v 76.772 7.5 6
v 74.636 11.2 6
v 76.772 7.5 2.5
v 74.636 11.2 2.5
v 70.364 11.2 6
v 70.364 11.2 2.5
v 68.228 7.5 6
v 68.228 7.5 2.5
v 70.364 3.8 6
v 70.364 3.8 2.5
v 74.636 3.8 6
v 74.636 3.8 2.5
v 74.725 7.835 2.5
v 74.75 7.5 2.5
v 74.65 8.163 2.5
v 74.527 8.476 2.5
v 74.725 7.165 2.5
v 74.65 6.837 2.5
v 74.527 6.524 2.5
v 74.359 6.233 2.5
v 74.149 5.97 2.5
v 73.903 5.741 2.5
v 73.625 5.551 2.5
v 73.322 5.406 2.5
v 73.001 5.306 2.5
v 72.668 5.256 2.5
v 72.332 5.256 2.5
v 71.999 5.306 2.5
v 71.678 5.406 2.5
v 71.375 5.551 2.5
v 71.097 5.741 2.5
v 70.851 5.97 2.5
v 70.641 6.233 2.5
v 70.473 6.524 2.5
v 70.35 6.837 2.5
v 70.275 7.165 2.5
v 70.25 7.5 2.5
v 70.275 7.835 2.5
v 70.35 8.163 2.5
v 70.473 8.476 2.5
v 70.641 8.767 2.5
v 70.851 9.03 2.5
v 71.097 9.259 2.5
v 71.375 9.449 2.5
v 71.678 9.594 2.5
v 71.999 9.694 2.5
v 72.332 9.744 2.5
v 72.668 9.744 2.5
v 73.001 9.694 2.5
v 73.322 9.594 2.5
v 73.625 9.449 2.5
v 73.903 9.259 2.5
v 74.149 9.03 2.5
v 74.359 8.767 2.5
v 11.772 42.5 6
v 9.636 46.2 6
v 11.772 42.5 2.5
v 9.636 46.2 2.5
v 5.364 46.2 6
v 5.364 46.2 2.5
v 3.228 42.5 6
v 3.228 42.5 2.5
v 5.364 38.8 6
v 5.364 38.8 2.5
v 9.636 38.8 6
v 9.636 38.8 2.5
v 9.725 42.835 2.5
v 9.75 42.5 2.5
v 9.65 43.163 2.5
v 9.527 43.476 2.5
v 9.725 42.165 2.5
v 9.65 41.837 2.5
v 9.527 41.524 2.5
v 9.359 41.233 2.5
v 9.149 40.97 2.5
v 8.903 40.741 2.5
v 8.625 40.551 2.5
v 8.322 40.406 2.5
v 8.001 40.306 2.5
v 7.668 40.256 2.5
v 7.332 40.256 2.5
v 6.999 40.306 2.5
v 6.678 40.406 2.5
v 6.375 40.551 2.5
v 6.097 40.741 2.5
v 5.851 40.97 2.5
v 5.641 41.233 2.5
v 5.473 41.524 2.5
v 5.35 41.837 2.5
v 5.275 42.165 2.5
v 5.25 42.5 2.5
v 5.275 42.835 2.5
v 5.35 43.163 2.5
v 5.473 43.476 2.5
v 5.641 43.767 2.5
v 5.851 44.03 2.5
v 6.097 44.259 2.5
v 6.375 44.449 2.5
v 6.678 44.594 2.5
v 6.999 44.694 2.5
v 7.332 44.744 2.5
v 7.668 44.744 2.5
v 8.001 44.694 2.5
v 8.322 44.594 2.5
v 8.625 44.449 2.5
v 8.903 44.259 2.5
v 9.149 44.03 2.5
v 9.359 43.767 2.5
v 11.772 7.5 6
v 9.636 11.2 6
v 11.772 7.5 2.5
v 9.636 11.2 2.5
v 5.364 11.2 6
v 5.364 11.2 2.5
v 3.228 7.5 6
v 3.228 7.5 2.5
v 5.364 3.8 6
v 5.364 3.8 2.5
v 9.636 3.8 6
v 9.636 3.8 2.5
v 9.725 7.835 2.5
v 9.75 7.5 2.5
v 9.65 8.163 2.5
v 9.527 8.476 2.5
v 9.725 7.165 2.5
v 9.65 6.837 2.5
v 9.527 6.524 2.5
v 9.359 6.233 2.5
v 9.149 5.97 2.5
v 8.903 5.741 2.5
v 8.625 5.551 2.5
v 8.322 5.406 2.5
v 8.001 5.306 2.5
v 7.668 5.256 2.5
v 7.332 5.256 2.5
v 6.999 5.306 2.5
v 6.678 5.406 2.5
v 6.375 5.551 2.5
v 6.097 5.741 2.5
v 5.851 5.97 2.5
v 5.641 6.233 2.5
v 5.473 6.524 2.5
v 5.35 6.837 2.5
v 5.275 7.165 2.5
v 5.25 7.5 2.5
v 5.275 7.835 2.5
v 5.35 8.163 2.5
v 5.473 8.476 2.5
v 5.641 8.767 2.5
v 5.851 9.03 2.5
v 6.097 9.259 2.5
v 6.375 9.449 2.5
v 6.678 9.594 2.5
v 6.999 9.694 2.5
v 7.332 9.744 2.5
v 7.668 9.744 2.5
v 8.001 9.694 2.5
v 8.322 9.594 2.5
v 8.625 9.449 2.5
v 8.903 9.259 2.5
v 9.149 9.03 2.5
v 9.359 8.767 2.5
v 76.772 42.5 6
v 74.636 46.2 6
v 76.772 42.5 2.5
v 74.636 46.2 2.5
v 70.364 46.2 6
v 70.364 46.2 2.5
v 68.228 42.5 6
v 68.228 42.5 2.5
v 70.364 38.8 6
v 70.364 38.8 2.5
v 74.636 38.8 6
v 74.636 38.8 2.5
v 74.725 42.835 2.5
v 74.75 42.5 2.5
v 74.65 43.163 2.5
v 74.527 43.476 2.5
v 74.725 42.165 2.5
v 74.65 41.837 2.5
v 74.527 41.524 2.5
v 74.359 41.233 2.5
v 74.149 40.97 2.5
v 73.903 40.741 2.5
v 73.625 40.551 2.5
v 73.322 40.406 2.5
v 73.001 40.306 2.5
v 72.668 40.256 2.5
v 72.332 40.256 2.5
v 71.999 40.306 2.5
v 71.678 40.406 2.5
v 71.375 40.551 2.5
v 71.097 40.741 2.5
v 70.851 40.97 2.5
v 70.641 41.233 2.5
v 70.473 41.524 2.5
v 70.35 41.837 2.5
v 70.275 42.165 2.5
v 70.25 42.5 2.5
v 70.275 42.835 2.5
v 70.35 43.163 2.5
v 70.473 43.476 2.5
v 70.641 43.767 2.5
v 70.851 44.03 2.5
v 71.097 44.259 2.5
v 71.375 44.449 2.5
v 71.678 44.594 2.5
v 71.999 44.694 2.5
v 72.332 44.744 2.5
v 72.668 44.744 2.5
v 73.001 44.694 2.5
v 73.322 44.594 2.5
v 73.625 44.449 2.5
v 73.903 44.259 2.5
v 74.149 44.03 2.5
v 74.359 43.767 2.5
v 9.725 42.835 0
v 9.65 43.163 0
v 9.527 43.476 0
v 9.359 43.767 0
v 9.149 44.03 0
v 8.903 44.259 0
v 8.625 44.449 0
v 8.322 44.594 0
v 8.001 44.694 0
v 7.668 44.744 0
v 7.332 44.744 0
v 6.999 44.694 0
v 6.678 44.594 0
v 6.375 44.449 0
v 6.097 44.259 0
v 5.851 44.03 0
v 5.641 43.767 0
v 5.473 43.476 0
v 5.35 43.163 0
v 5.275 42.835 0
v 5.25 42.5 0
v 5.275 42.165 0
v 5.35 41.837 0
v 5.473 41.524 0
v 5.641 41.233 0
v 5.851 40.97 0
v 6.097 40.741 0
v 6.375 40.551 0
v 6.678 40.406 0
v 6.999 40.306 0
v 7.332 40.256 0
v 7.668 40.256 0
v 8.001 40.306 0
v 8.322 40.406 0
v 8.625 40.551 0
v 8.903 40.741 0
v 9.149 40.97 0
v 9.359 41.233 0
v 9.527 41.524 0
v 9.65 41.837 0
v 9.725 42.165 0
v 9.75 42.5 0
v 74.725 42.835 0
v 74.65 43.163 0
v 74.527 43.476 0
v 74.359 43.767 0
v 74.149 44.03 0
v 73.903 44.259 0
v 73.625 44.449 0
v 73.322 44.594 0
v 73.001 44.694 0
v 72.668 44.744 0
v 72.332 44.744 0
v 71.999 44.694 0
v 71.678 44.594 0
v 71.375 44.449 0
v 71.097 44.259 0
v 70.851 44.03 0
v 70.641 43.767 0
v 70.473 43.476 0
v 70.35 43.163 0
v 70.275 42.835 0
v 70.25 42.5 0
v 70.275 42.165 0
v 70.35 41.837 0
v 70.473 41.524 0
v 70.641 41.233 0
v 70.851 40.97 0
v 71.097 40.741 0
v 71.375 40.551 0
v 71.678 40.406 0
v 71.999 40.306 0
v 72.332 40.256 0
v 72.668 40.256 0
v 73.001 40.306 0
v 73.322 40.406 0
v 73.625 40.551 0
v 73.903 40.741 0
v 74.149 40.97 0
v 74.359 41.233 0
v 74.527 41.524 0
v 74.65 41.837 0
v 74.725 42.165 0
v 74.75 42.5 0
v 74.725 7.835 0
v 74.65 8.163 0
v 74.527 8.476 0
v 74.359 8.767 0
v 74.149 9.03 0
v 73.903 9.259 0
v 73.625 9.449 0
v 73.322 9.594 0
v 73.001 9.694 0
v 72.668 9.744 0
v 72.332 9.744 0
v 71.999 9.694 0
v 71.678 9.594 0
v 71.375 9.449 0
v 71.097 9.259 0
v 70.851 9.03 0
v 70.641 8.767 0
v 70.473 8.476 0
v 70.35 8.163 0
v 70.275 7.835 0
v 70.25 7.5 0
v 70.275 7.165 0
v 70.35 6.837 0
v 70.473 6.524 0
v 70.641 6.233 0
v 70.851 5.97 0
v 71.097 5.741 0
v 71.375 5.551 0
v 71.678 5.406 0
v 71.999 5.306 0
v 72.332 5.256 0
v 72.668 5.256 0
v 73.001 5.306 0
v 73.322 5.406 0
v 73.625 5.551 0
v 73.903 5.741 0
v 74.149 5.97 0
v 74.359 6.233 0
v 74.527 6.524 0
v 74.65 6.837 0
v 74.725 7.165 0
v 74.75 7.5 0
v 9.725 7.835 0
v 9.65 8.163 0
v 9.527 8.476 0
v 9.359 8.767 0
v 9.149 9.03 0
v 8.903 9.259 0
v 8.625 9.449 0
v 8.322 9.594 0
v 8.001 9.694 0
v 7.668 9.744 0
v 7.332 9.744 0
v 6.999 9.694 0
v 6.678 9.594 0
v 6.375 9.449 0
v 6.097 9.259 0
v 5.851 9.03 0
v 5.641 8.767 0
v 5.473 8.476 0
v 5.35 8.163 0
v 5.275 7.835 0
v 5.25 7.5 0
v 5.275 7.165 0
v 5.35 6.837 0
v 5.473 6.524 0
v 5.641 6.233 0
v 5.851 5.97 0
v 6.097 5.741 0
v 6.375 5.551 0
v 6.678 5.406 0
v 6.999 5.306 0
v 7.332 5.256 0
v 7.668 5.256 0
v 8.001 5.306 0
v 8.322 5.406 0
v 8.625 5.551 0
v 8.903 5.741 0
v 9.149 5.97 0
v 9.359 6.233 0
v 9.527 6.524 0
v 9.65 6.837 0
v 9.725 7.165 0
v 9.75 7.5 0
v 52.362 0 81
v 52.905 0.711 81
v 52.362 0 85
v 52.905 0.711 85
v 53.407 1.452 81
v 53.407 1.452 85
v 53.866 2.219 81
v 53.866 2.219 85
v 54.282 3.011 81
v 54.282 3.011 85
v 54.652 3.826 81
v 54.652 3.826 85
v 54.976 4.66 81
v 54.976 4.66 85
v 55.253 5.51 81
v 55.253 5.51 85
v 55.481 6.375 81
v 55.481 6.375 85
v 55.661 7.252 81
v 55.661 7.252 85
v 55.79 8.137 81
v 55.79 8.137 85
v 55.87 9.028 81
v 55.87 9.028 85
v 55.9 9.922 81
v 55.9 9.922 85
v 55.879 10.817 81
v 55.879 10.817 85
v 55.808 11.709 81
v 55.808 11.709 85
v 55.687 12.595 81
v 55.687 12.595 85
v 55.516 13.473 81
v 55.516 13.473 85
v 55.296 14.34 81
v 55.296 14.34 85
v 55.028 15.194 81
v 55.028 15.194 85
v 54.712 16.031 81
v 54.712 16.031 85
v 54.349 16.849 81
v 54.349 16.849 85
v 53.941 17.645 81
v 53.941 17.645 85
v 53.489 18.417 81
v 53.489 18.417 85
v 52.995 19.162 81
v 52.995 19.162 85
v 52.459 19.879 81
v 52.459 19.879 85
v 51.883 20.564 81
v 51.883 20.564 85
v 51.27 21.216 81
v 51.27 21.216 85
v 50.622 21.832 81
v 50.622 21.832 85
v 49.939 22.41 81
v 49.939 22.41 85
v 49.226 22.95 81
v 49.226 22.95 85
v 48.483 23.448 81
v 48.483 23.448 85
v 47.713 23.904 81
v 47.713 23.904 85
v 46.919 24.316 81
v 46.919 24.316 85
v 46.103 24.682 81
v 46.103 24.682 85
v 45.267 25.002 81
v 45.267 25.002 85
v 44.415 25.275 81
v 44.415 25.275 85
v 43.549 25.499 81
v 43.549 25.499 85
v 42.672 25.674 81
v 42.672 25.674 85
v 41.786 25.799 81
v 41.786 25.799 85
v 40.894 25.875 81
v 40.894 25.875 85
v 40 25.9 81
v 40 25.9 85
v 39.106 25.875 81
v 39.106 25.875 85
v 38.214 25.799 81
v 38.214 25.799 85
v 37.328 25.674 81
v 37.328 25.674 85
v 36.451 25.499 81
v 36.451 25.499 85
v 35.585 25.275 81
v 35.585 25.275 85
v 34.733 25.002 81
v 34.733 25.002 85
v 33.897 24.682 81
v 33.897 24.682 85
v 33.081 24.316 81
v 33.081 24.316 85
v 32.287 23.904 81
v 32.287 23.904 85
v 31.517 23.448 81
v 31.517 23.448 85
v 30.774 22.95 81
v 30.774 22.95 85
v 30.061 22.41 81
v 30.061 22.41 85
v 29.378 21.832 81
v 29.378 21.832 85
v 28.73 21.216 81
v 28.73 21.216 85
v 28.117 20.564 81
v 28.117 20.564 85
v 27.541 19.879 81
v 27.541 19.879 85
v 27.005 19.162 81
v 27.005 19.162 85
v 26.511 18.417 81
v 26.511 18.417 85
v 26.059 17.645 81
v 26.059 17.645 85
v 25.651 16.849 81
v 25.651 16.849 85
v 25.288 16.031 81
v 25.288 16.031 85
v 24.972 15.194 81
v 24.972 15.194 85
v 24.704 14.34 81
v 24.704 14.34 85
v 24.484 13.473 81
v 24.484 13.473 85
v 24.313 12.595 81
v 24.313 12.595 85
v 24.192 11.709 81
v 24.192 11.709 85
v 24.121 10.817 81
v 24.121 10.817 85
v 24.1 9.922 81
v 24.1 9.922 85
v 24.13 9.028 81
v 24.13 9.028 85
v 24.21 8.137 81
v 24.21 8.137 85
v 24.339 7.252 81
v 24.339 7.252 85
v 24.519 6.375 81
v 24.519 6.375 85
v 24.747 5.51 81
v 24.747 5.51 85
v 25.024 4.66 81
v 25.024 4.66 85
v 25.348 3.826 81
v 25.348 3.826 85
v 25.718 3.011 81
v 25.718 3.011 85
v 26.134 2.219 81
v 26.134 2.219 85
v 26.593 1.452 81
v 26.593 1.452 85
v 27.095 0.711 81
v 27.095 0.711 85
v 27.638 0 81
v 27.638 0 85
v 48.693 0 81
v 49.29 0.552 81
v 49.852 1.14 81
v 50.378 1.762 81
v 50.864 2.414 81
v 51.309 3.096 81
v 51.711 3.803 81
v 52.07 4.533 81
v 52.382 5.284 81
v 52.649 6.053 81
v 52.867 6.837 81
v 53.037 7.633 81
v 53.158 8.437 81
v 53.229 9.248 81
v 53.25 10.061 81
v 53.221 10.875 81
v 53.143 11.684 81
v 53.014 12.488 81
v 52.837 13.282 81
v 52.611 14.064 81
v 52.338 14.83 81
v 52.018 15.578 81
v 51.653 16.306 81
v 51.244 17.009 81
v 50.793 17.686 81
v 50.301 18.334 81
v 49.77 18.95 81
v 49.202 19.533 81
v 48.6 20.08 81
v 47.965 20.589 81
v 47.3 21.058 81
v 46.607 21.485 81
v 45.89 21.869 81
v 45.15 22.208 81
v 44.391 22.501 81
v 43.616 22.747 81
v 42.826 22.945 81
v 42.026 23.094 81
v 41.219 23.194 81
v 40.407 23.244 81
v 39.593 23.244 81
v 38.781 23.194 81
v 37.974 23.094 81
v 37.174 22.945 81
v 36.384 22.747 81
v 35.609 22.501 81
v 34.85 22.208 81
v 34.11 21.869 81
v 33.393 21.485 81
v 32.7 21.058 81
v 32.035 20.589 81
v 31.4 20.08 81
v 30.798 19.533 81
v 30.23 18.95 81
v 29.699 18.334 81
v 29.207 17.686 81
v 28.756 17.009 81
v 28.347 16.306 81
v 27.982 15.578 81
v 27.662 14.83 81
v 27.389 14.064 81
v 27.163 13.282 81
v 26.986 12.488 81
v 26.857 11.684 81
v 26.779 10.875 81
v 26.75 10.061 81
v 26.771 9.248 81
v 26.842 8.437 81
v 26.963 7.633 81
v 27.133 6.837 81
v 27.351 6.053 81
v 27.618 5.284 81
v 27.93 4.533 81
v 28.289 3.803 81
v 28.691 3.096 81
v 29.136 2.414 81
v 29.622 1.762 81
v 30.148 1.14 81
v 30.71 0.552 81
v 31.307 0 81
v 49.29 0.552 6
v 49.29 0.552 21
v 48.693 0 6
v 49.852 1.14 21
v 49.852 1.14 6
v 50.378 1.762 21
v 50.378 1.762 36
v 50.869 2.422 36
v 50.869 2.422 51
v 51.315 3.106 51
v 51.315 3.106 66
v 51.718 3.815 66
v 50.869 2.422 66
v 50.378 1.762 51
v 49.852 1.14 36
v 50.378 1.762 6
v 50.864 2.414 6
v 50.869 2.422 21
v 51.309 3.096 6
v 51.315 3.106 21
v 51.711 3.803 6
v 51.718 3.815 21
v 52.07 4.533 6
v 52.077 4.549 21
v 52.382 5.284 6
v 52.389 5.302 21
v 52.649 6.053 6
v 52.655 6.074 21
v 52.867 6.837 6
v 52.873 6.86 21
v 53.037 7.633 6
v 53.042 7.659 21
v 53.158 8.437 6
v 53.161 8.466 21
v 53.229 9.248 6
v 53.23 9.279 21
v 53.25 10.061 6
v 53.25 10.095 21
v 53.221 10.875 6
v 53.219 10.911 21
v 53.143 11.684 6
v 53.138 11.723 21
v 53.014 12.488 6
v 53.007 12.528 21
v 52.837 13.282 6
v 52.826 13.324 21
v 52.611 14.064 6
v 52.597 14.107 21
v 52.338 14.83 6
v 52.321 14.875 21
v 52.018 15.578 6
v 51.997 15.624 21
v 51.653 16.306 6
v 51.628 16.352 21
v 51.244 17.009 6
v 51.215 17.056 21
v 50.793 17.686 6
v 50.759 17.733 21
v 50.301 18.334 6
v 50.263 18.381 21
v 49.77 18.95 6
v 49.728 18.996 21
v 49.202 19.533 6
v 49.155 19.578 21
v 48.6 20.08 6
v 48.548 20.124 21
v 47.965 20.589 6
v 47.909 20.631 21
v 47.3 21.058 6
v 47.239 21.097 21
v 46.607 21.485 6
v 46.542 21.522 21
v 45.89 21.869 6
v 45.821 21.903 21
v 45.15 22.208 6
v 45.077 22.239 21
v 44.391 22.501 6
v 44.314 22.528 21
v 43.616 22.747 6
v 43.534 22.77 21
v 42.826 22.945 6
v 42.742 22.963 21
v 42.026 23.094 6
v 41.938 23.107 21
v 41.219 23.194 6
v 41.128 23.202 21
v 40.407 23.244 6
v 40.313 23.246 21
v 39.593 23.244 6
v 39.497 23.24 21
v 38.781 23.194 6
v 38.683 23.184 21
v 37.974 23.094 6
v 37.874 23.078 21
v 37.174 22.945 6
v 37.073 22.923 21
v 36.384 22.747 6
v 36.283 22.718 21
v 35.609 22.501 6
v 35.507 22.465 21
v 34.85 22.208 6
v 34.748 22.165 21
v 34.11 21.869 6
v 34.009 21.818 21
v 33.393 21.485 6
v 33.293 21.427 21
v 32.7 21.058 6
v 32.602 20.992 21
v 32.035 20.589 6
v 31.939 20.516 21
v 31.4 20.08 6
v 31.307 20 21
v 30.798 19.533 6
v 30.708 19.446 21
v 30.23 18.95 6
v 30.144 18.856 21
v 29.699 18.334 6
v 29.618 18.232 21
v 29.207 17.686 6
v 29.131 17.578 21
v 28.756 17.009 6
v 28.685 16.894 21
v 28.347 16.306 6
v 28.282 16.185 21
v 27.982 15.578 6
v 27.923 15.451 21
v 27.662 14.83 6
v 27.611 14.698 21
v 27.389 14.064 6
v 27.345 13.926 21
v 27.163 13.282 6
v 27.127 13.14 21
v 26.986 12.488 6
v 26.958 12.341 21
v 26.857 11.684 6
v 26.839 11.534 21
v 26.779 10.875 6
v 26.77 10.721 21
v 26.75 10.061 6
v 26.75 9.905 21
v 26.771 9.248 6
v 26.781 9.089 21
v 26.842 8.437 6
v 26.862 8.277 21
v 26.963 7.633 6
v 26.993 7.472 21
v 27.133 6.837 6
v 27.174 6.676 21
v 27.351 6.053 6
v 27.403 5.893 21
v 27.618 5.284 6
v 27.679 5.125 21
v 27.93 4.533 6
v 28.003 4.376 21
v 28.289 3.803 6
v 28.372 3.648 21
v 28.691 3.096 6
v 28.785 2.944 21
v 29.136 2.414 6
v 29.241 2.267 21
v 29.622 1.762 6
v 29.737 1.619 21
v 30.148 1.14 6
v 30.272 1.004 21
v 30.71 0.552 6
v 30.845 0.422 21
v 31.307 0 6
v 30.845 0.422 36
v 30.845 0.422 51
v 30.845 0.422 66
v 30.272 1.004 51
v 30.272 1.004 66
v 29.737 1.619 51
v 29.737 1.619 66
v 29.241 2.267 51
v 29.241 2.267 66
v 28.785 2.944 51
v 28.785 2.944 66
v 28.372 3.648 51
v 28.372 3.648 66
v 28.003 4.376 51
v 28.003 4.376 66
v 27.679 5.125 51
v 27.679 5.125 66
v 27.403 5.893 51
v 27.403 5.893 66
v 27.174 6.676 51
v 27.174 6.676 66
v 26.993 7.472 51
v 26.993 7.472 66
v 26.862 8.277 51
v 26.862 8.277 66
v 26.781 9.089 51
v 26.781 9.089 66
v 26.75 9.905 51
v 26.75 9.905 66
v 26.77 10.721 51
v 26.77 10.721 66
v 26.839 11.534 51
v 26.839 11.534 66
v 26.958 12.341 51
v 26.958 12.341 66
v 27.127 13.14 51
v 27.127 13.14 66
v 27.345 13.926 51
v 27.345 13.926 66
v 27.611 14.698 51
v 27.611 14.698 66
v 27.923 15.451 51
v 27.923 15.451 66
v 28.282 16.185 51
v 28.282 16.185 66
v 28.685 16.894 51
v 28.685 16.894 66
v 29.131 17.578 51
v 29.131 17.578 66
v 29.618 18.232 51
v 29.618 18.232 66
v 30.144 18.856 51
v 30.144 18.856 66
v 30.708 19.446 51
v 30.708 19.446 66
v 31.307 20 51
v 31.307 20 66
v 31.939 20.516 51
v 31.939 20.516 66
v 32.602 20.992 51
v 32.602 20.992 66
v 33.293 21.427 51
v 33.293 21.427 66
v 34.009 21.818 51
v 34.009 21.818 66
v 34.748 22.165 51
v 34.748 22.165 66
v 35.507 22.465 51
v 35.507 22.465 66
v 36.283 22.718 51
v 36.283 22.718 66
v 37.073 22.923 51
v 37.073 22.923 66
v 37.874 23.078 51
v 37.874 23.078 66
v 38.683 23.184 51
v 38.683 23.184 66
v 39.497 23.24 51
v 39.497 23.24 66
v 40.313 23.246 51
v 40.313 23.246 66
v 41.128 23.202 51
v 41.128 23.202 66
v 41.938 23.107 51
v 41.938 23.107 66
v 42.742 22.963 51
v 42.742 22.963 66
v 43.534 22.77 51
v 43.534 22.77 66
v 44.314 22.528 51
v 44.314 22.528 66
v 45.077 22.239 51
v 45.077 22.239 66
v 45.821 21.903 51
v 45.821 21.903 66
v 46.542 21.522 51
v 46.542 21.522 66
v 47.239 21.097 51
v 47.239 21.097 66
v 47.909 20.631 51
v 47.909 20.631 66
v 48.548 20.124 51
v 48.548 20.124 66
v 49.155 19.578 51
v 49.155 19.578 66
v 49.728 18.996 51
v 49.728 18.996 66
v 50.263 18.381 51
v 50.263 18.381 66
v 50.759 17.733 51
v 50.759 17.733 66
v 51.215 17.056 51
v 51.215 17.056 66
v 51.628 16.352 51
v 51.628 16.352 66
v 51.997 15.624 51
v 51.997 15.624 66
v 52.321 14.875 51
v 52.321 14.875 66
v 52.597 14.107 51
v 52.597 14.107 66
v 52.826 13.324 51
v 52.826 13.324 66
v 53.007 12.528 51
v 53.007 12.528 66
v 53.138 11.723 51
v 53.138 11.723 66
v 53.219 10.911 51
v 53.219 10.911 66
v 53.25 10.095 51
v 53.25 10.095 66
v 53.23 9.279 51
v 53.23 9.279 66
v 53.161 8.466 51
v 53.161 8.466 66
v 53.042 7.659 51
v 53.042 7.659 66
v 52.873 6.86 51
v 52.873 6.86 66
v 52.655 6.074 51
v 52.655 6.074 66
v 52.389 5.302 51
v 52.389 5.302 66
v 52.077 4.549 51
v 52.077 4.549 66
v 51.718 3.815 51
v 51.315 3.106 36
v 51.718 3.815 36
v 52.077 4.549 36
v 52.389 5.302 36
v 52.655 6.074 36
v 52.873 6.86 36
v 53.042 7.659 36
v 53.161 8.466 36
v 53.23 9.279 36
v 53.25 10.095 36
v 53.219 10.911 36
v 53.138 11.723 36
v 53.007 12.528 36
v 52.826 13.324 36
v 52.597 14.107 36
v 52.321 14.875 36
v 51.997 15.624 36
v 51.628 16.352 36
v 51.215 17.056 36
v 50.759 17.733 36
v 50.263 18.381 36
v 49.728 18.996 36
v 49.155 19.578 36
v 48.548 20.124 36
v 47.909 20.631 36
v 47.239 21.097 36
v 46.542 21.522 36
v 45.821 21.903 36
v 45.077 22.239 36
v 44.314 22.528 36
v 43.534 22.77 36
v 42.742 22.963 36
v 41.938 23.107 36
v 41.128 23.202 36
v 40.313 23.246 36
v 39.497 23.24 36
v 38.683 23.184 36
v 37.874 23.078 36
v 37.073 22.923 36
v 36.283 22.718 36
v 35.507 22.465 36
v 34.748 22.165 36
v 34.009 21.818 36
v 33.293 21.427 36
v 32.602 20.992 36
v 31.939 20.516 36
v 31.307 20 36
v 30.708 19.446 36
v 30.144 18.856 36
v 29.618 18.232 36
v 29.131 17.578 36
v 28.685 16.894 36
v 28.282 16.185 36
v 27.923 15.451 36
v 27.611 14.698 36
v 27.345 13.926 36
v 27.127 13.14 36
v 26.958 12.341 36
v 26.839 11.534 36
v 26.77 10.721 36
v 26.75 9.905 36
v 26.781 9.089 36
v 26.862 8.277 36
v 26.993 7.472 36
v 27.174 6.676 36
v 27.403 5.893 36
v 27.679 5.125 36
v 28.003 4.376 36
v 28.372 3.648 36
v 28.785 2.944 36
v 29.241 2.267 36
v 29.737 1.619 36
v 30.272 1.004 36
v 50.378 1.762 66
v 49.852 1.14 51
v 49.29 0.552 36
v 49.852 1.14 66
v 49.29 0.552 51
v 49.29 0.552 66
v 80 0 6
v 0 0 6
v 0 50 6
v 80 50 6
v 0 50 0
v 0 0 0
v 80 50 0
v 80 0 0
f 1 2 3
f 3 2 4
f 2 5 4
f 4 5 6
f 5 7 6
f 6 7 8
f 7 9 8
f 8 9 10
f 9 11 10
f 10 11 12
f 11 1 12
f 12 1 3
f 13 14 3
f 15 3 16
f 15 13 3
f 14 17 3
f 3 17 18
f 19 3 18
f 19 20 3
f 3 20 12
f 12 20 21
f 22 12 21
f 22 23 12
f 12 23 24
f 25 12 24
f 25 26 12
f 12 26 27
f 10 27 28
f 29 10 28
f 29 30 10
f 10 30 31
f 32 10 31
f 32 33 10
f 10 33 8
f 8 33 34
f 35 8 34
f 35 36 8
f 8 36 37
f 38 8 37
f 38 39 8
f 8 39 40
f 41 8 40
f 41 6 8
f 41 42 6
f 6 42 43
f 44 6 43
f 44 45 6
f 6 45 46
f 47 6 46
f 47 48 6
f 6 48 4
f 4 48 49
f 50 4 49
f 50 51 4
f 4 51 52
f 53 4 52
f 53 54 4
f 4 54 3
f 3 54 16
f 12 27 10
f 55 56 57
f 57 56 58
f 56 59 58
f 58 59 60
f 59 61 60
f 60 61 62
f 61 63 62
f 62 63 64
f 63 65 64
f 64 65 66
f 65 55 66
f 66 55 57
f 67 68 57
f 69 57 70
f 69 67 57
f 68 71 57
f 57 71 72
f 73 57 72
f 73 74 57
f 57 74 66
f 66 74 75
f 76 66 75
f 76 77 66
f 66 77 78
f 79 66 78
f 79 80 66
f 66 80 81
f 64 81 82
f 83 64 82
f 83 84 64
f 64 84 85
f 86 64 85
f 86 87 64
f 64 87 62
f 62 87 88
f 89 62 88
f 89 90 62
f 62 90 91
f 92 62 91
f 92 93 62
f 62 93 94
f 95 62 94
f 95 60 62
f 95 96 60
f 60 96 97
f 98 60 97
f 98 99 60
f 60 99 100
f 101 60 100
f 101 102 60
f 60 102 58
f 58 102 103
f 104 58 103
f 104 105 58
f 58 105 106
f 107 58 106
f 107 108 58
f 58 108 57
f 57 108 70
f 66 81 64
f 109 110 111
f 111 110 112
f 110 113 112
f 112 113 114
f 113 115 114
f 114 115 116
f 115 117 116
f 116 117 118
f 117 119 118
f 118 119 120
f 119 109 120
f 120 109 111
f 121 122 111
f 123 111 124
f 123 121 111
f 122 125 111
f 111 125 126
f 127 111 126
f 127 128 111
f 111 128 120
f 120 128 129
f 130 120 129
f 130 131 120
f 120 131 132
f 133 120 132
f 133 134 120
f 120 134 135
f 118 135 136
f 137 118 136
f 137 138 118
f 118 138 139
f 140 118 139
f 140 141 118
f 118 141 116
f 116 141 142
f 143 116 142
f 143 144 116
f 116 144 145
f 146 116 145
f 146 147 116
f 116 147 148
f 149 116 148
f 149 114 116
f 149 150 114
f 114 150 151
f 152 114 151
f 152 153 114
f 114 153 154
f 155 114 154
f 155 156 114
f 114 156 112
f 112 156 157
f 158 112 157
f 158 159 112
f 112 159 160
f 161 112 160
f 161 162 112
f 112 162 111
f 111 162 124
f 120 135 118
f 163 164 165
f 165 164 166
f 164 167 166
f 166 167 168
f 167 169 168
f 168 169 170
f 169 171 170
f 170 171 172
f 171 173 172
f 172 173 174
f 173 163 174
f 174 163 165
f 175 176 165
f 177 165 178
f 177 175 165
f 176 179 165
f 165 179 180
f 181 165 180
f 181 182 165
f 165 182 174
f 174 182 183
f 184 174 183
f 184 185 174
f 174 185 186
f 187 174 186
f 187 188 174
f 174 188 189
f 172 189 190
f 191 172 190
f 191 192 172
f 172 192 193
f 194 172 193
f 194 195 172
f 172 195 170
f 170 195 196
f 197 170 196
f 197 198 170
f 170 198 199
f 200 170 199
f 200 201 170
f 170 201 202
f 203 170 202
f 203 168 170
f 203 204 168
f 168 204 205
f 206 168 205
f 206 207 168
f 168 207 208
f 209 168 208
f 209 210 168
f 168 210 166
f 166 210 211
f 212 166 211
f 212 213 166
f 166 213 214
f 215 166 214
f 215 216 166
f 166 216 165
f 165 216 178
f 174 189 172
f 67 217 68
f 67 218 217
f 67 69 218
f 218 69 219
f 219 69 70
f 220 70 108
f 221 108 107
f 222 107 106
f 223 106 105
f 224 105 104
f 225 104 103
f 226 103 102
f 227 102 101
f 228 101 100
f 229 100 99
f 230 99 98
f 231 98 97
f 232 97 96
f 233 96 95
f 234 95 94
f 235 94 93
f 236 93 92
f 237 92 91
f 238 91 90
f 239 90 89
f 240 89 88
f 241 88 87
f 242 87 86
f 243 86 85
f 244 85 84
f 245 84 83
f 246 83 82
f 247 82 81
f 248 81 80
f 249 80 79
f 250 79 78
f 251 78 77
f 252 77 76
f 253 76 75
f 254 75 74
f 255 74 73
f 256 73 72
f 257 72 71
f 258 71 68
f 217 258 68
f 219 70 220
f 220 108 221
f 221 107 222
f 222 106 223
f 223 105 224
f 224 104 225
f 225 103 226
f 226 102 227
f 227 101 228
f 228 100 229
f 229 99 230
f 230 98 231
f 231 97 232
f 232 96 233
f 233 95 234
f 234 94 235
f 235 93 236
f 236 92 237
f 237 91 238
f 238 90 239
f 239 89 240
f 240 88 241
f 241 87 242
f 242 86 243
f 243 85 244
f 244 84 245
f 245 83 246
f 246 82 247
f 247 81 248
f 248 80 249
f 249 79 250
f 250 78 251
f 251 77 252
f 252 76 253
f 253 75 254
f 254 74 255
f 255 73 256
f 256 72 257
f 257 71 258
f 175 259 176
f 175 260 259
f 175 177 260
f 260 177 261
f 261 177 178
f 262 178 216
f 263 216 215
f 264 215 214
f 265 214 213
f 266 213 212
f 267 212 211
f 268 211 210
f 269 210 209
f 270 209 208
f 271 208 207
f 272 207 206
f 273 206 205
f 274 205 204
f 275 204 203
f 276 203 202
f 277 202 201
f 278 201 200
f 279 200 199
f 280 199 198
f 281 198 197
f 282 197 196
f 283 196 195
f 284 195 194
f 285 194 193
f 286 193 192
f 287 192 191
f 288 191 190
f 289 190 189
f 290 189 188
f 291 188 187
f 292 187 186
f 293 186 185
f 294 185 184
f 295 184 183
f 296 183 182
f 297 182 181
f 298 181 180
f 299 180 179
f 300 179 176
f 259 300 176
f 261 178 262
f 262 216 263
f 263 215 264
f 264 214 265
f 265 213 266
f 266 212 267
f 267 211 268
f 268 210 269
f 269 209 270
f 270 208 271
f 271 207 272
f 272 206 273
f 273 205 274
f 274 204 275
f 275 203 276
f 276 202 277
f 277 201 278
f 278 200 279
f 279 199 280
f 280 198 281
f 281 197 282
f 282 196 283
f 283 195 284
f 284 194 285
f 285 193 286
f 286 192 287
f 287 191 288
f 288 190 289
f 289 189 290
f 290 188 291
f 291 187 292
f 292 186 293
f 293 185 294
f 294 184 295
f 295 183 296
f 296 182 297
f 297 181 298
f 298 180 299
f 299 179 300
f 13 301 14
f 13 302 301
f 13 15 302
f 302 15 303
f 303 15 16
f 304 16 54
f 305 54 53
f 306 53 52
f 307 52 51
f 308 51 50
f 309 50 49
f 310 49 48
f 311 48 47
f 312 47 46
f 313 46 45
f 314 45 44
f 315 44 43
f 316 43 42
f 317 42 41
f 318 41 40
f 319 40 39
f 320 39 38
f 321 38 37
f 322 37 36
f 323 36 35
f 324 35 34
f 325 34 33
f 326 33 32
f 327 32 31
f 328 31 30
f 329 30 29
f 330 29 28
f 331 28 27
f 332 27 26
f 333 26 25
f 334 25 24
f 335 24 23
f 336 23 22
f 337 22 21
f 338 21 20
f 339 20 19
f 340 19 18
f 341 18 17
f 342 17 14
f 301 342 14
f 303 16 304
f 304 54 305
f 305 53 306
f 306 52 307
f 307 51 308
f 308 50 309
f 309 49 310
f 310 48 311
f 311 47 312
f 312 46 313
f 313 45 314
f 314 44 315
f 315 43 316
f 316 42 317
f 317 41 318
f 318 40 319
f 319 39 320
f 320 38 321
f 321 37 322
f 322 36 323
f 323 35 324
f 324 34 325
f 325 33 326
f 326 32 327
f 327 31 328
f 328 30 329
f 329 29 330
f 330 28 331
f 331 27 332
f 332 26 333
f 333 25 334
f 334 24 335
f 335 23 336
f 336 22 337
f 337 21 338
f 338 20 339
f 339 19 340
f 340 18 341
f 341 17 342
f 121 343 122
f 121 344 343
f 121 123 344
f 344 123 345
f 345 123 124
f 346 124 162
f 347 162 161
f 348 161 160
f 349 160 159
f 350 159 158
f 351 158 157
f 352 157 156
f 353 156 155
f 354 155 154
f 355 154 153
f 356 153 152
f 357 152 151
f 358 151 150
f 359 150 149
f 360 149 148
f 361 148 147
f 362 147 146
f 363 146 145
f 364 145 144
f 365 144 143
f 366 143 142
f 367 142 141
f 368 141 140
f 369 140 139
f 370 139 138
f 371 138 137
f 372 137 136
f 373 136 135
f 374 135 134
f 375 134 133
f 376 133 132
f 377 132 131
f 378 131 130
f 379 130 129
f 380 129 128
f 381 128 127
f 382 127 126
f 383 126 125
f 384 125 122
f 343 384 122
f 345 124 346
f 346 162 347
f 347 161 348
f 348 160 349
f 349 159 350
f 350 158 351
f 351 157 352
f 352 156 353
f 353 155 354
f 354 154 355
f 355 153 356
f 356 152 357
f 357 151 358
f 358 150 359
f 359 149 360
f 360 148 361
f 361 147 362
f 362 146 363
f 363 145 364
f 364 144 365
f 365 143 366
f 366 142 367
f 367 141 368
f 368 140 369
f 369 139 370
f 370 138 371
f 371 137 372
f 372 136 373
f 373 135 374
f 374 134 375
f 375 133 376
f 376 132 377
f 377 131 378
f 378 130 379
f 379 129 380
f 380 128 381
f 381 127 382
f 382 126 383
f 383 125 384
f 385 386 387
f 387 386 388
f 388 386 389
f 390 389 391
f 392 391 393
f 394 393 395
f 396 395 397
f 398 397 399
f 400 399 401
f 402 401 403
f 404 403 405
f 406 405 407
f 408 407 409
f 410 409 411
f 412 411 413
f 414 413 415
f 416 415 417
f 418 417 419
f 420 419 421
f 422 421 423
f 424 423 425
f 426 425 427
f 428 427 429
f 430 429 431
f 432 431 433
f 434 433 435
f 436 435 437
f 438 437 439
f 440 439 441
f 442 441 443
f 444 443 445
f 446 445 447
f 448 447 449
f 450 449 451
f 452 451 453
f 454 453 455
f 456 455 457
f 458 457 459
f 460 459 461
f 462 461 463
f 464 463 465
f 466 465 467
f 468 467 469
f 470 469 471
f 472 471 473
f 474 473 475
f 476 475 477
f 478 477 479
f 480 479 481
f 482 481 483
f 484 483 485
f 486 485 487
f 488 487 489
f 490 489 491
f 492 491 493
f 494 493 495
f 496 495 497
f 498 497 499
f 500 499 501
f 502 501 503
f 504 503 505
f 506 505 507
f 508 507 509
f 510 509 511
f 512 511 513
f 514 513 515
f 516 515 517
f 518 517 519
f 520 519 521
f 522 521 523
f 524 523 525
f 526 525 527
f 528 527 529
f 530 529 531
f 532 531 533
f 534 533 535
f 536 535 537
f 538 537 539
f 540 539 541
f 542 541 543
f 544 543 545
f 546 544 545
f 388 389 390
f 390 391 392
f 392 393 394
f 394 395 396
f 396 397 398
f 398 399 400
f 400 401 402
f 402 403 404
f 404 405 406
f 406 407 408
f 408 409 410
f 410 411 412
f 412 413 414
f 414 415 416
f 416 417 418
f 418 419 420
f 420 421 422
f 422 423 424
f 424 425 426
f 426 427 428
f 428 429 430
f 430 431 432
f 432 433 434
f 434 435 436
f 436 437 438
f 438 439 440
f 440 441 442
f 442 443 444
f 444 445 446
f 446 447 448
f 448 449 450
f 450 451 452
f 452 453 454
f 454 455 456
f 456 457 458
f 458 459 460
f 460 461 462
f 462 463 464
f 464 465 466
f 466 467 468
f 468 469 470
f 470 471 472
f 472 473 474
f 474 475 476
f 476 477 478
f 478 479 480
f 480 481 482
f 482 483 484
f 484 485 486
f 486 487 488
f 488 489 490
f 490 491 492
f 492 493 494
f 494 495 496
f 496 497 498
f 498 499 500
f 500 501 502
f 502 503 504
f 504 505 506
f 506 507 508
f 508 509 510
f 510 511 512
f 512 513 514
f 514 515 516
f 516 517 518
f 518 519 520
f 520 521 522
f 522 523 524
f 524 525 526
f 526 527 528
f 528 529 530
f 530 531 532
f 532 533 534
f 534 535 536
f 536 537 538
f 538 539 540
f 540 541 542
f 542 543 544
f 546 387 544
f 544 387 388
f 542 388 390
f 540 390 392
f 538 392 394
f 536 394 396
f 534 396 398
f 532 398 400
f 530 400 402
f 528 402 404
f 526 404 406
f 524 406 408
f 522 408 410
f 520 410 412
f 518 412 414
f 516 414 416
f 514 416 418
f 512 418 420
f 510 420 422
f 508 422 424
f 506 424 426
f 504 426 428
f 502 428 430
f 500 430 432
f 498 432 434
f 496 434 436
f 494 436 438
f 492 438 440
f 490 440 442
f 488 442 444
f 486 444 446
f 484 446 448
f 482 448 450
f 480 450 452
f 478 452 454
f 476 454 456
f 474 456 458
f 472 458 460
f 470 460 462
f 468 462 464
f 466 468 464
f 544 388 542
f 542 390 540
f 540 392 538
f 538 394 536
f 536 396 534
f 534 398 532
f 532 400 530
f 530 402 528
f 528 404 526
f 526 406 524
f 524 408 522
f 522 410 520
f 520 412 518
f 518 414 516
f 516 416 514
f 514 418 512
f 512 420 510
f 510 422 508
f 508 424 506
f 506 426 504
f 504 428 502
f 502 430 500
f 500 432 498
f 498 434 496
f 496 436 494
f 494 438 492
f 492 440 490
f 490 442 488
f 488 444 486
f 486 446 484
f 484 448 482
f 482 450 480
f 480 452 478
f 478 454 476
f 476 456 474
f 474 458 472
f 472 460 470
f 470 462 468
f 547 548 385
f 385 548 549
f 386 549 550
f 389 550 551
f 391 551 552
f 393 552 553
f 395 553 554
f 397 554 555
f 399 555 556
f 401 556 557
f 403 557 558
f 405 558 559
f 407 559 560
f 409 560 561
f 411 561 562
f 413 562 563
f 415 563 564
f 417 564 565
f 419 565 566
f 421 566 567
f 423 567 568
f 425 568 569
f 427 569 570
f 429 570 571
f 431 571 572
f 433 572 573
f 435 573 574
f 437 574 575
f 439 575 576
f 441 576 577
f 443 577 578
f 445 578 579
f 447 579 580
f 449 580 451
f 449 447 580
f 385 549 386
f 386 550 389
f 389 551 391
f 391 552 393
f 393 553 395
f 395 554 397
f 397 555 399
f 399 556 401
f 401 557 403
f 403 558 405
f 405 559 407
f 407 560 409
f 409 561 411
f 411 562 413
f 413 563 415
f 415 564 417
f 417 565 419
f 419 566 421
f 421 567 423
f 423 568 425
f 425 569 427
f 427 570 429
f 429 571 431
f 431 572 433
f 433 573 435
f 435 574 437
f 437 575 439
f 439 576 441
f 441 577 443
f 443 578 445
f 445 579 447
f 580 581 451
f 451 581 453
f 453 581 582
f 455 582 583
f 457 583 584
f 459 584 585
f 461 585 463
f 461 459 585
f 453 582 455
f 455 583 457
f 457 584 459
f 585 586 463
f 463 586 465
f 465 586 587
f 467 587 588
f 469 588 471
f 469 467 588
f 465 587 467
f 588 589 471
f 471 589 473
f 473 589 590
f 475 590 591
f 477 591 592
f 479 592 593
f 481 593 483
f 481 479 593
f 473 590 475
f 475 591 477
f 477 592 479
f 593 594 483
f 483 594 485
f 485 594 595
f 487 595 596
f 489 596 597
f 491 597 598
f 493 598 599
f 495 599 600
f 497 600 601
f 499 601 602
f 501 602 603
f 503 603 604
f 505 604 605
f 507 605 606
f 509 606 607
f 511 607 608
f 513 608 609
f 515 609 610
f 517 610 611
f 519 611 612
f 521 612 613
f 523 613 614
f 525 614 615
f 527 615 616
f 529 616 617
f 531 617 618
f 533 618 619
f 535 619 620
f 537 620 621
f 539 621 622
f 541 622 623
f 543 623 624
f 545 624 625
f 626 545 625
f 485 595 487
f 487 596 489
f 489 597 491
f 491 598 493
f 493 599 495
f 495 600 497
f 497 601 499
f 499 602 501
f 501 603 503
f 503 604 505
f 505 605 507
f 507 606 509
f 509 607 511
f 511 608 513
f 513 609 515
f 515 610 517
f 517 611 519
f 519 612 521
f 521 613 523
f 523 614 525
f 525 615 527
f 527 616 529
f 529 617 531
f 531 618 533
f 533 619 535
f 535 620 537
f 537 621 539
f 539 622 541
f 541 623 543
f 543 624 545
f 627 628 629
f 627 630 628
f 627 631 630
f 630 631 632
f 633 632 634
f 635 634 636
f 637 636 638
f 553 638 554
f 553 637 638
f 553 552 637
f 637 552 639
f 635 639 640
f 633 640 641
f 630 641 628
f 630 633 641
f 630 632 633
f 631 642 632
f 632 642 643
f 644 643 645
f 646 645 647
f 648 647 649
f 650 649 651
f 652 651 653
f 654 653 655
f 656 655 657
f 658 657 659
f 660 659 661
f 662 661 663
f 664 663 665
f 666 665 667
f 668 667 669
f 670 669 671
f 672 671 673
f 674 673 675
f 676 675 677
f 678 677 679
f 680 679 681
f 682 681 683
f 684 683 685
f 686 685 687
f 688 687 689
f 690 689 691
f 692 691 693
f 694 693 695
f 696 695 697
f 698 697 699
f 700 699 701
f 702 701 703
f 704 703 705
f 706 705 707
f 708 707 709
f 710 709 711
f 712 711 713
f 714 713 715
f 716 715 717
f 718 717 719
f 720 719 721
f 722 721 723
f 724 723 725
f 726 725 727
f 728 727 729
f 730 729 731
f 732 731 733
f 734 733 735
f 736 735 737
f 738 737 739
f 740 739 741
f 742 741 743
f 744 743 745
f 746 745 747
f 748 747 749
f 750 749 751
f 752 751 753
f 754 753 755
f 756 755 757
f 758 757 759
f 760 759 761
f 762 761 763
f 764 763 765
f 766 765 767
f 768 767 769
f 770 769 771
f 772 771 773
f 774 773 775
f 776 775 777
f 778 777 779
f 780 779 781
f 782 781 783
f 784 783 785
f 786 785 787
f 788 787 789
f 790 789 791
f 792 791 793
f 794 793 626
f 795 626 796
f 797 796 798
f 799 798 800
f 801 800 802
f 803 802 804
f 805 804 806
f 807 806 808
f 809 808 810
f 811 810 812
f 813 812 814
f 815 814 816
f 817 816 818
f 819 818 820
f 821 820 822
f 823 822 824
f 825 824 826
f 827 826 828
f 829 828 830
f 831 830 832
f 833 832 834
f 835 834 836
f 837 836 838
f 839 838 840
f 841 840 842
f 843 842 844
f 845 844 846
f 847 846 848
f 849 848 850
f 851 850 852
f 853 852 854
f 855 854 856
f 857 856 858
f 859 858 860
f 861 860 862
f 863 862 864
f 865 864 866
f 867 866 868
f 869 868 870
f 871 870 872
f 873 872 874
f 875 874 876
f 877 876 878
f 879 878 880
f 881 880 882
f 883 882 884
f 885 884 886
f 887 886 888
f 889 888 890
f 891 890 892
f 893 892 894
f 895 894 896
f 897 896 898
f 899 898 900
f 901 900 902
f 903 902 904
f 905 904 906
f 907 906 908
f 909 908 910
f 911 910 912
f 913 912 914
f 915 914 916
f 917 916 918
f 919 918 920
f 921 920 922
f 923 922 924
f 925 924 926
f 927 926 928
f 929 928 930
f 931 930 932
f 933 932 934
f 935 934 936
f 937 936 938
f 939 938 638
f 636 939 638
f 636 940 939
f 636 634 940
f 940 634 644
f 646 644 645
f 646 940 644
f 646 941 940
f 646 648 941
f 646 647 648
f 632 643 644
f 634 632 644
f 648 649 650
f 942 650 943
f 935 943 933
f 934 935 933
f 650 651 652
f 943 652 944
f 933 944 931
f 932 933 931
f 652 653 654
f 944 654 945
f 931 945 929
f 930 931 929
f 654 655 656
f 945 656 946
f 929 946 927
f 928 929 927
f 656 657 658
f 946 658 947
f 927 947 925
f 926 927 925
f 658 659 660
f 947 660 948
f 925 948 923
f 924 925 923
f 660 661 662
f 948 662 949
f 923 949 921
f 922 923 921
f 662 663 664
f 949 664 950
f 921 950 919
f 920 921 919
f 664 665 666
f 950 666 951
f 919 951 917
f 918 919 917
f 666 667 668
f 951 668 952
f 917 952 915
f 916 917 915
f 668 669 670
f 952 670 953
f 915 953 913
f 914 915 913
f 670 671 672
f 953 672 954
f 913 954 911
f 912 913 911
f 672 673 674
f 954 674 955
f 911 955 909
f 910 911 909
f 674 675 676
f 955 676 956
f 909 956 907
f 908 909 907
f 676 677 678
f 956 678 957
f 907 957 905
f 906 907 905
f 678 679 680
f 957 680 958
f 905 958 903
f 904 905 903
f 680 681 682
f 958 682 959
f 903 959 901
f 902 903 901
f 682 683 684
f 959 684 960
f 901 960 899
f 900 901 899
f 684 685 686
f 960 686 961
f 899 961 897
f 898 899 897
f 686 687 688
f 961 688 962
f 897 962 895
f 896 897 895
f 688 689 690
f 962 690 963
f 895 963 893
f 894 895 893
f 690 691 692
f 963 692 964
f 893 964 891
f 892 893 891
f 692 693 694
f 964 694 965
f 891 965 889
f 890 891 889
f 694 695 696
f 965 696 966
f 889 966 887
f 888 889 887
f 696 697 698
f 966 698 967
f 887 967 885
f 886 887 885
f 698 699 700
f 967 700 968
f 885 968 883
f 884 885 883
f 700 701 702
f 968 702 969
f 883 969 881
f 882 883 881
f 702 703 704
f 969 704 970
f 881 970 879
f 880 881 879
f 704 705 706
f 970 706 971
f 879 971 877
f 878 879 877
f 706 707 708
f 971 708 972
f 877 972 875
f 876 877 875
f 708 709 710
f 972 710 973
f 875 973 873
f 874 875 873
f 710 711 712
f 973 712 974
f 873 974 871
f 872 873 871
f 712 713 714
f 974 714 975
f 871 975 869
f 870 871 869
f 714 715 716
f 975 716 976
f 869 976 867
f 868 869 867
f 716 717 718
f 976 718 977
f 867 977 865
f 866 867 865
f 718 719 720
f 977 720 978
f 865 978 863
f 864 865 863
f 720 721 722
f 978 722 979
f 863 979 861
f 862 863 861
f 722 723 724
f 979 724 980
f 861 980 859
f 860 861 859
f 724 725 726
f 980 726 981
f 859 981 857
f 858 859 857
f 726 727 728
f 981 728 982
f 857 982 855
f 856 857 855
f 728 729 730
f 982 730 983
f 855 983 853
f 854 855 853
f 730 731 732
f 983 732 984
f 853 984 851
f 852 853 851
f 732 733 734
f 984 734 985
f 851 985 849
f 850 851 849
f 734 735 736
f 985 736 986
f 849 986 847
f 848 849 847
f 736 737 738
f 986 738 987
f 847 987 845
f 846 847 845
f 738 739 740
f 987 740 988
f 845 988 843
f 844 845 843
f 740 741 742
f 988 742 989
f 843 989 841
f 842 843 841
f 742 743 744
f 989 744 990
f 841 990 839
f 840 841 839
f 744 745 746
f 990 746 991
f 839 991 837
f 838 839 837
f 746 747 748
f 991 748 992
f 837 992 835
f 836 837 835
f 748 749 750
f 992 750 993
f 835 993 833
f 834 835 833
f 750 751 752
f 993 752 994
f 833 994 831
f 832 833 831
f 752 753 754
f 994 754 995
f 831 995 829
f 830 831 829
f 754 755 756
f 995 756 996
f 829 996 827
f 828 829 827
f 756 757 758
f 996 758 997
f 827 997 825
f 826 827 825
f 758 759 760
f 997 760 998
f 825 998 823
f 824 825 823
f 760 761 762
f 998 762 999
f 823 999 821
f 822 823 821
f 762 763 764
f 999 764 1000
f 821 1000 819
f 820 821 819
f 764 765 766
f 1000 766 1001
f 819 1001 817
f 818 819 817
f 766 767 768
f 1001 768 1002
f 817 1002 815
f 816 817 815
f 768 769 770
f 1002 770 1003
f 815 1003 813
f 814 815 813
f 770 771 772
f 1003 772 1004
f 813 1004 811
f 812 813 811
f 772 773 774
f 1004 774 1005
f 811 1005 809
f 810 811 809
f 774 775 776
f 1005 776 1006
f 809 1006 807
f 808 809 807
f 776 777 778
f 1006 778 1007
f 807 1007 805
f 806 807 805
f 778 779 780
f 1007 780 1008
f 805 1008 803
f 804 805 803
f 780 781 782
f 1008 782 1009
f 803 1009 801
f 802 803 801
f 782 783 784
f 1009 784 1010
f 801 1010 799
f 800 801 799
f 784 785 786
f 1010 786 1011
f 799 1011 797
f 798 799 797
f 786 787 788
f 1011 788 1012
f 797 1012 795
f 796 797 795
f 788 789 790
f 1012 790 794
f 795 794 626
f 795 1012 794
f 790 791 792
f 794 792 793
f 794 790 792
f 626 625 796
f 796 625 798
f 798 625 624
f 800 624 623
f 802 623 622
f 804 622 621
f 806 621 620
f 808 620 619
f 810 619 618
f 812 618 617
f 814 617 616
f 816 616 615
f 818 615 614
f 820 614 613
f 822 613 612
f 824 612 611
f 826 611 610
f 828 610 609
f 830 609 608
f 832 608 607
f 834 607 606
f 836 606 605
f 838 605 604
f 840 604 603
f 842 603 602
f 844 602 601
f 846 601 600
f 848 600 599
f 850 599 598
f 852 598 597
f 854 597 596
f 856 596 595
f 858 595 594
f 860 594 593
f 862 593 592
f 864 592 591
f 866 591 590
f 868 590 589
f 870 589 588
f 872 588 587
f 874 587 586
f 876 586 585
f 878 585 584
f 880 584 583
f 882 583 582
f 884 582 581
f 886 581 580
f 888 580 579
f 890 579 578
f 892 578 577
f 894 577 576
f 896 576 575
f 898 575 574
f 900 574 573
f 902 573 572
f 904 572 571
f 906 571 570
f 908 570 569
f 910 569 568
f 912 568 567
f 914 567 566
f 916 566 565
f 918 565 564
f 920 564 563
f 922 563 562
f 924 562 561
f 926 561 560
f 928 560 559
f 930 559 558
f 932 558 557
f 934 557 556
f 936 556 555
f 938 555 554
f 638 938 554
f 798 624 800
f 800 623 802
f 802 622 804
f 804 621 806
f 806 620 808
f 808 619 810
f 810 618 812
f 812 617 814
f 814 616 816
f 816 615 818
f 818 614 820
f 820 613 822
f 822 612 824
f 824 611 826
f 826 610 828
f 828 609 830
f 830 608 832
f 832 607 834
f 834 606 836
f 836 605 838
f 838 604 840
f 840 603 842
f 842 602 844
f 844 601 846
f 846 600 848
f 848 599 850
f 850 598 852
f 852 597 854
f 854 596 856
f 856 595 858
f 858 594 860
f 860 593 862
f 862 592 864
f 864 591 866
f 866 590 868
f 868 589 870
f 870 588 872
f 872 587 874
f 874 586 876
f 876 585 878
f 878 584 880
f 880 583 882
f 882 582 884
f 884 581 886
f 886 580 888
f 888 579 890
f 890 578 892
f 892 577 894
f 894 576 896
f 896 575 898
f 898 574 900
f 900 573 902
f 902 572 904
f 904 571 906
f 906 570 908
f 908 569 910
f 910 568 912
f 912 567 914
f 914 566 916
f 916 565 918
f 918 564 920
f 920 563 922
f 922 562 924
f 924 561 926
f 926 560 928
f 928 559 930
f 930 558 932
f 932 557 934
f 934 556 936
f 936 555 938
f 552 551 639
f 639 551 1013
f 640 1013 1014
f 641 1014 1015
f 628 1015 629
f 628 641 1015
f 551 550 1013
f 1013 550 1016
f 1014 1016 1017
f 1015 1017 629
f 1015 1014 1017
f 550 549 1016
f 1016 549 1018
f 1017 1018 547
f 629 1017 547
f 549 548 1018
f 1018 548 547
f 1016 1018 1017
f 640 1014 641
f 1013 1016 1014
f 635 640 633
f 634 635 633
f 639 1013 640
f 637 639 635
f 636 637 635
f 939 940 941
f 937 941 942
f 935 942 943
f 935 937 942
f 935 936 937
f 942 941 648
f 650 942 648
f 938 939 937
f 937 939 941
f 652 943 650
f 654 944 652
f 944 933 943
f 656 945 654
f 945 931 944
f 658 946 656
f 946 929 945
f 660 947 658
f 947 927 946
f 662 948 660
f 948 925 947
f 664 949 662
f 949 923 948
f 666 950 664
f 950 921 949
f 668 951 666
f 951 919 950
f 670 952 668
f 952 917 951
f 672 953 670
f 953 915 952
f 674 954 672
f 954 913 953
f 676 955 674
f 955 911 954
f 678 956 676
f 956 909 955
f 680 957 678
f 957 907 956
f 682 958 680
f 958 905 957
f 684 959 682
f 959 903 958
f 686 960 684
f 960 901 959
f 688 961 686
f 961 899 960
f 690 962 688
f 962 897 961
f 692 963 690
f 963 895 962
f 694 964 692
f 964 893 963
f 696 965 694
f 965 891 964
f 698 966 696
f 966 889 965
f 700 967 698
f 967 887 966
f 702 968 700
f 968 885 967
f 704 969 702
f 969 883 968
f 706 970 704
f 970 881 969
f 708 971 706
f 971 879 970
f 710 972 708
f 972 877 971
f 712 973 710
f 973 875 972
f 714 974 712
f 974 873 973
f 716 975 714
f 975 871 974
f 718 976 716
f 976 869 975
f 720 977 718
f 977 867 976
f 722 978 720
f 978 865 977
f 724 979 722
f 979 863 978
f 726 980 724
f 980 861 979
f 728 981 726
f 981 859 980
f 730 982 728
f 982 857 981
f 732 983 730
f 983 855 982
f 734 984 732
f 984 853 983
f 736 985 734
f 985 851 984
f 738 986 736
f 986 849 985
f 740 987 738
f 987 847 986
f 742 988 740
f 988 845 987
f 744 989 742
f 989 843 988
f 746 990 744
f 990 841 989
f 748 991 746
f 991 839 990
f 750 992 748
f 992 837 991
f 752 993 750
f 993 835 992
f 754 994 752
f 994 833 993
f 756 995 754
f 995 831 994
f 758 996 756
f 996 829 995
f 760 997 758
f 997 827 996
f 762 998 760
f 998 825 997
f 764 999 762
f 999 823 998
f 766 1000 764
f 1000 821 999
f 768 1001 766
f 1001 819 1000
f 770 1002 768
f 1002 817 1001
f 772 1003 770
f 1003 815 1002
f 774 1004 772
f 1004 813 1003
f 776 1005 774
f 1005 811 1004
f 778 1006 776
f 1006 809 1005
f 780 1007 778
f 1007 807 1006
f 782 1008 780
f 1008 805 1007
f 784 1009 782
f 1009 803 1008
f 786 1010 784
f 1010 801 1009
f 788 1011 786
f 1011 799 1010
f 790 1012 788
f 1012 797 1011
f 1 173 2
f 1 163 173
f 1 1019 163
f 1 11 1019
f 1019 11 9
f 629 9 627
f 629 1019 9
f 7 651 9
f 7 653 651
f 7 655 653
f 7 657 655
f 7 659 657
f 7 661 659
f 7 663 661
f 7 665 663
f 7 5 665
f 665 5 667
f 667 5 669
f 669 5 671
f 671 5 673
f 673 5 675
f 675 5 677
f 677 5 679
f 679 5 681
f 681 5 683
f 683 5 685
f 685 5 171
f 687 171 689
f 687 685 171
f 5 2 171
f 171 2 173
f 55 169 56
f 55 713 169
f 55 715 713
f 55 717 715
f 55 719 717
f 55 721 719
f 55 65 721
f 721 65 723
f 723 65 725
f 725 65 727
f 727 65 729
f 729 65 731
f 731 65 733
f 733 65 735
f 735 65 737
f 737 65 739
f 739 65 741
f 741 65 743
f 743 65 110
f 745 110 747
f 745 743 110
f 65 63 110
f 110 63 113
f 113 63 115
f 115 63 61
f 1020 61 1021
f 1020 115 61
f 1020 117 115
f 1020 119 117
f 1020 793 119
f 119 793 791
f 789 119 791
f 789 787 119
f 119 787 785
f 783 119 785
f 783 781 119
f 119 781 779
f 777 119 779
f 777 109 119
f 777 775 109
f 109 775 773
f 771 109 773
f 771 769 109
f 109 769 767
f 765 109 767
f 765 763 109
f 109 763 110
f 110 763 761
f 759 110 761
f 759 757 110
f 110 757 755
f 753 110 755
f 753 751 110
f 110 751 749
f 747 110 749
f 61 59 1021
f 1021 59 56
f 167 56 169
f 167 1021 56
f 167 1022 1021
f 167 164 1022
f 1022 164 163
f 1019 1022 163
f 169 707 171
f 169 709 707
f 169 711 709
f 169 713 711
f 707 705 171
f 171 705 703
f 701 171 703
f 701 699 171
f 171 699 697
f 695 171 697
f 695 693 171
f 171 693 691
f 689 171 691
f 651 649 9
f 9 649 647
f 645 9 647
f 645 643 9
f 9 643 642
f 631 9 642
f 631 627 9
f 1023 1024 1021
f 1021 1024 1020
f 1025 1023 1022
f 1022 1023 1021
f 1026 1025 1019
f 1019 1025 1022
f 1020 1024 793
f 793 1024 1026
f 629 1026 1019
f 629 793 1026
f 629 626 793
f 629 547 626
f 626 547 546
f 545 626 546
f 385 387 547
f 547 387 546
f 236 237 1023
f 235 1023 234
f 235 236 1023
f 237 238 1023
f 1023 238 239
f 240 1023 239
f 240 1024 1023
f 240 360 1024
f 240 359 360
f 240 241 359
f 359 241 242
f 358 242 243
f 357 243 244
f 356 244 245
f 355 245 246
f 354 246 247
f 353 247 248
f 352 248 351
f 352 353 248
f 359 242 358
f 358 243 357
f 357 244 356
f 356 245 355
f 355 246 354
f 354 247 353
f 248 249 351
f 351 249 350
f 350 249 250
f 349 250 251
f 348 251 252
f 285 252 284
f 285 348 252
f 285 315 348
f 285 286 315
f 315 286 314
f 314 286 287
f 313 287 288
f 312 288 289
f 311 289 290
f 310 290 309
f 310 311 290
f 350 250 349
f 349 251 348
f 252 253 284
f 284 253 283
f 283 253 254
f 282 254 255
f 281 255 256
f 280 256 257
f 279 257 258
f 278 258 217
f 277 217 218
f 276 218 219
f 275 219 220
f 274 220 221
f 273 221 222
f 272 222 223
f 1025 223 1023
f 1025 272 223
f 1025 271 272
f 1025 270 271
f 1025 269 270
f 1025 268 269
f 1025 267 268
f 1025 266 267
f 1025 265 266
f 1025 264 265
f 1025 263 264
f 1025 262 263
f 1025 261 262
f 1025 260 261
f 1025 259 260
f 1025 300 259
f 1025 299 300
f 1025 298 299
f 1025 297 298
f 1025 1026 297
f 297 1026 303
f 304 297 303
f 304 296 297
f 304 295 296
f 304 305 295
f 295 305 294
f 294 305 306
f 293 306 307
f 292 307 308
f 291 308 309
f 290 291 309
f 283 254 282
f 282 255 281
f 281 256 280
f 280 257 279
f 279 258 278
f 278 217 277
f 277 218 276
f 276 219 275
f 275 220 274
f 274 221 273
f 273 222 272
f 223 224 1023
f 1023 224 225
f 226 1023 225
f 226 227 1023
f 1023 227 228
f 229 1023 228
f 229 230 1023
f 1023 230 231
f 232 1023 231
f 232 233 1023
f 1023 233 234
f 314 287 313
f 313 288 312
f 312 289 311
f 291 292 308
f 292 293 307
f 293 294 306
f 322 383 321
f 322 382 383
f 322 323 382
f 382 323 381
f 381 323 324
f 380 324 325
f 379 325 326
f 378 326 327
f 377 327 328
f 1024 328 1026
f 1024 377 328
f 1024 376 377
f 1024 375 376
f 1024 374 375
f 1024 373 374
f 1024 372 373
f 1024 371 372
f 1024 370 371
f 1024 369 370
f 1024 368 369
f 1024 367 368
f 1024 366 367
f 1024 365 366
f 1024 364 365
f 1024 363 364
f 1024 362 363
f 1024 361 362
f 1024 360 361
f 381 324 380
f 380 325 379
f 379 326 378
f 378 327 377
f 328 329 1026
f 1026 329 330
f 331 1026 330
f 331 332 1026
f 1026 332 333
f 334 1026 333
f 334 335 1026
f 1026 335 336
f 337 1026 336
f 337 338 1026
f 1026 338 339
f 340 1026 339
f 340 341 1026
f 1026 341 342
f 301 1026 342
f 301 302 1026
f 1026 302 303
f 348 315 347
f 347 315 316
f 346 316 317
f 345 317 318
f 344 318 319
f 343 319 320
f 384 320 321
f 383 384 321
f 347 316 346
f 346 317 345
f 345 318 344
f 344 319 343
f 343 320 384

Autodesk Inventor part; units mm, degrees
ref_plane "Work Plane1" through (0, 0, 26) normal (0, 0, 1) x (1, 0, 0)
ref_plane "Work Plane2" through (0, 0, 61) normal (0, 0, 1) x (1, 0, 0)
ref_plane "YZ Plane" through (0, 0, 0) normal (1, 0, 0) x (0, 1, 0)
sketch "Sketch1" plane through (0, 0, 0) normal (0, 0, 1) x (1, 0, 0)
  line L0 (0, 0) -> (80, 0)
  line L1 (80, 0) -> (80, 50)
  line L2 (80, 50) -> (0, 50)
  line L3 (0, 50) -> (0, 0)
  dimension "d0" = 80
  dimension "d1" = 50
extrude "Extrusion1" add sketch "Sketch1" along normal blind 6
sketch "Sketch2" plane through (0, 0, 6) normal (0, 0, 1) x (1, 0, 0)
  line L0 (80, 50) -> (0, 50)
  line L1 (0, 50) -> (0, 0)
  arc A0 (48.6927, 0) -> (31.3073, 0) centre (40, 10) ccw
  line L2 (31.3073, 0) -> (48.6927, 0)
  dimension "d11" = 26.5
  dimension "d12" = 40
  dimension "d13" = 40
  dimension "d14" = 10
extrude "Extrusion2" add sketch "Sketch2" along normal blind 75
sketch "Sketch8" plane through (0, 0, 81) normal (0, 0, 1) x (1, 0, 0)
  arc A0 (48.6927, 0) -> (31.3073, 0) centre (40, 10) ccw
  line L0 (31.3073, 0) -> (48.6927, 0)
  arc A1 (52.3616, 0) -> (27.6384, 0) centre (40, 10) ccw
  line L1 (31.3073, 0) -> (27.6384, 0)
  line L2 (48.6927, 0) -> (52.3616, 0)
  point P0 (0, 0)
  dimension "d30" = 31.8
extrude "Extrusion7" add sketch "Sketch8" along normal blind 4
sketch "Sketch9" plane through (0, 0, 0) normal (0, 0, -1) x (-1, 0, 0)
  line L0 (0, 0) -> (-80, 0)
  line L1 (-80, 0) -> (-80, 50)
  point P0 (-72.5, 42.5)
  point P1 (-72.5, 7.5)
  point P2 (-7.5, 42.5)
  point P3 (-7.5, 7.5)
  dimension "d33" = 65
  dimension "d34" = 35
  dimension "d35" = 7.5
  dimension "d36" = 7.5
hole "Hole1" at (72.5, 42.5, 0) at (72.5, 7.5, 0) at (7.5, 42.5, 0) at (7.5, 7.5, 0) direction (0, 0, 1) diameter 4.5 end through all
sketch "Sketch10" plane through (0, 0, 6) normal (0, 0, 1) x (1, 0, 0)
  circle A0 centre (7.5, 42.5) radius 2.25
  circle A1 centre (72.5, 42.5) radius 2.25
  circle A2 centre (72.5, 7.5) radius 2.25
  circle A3 centre (7.5, 7.5) radius 2.25
  line L0 (11.7724, 42.5) -> (9.6362, 38.8)
  line L1 (9.6362, 38.8) -> (5.3638, 38.8)
  line L2 (5.3638, 38.8) -> (3.2276, 42.5)
  line L3 (3.2276, 42.5) -> (5.3638, 46.2)
  line L4 (5.3638, 46.2) -> (9.6362, 46.2)
  line L5 (9.6362, 46.2) -> (11.7724, 42.5)
  line L6 (11.7724, 7.5) -> (9.6362, 3.8)
  line L7 (9.6362, 3.8) -> (5.3638, 3.8)
  line L8 (5.3638, 3.8) -> (3.2276, 7.5)
  line L9 (3.2276, 7.5) -> (5.3638, 11.2)
  line L10 (5.3638, 11.2) -> (9.6362, 11.2)
  line L11 (9.6362, 11.2) -> (11.7724, 7.5)
  line L12 (76.7724, 7.5) -> (74.6362, 3.8)
  line L13 (74.6362, 3.8) -> (70.3638, 3.8)
  line L14 (70.3638, 3.8) -> (68.2276, 7.5)
  line L15 (68.2276, 7.5) -> (70.3638, 11.2)
  line L16 (70.3638, 11.2) -> (74.6362, 11.2)
  line L17 (74.6362, 11.2) -> (76.7724, 7.5)
  line L18 (76.7724, 42.5) -> (74.6362, 38.8)
  line L19 (74.6362, 38.8) -> (70.3638, 38.8)
  line L20 (70.3638, 38.8) -> (68.2276, 42.5)
  line L21 (68.2276, 42.5) -> (70.3638, 46.2)
  line L22 (70.3638, 46.2) -> (74.6362, 46.2)
  line L23 (74.6362, 46.2) -> (76.7724, 42.5)
  dimension "d44" = 7.4
extrude "Extrusion8" cut sketch "Sketch10" against normal blind 3.5
sketch "Sketch4" plane through (0, 0, 26) normal (0, 0, 1) x (1, 0, 0)
  arc A0 (62.9129, 0) -> (17.0871, 0) centre (40, 10) ccw
  line L0 (17.0871, 0) -> (62.9129, 0)
  circle A1 centre (40, 24.5) radius 11 construction
  arc A2 (28, 24.5) -> (52, 24.5) centre (40, 24.5) ccw
  line L1 (28, 24.5) -> (28, 31.9317)
  line L2 (52, 24.5) -> (52, 31.9317)
  arc A3 (62.9129, 0) -> (17.0871, 0) centre (40, 10) ccw
  point P0 (0, 0)
  dimension "d15" = 22
  dimension "d16" = 14.5
  dimension "d17" = 24
sketch "Sketch5" plane through (0, 0, 61) normal (0, 0, 1) x (1, 0, 0)
  arc A0 (62.9129, 0) -> (17.0871, 0) centre (40, 10) ccw
  line L0 (17.0871, 0) -> (62.9129, 0)
  arc A1 (28, 24.5) -> (52, 24.5) centre (40, 24.5) ccw
  line L1 (52, 31.9317) -> (52, 24.5)
  arc A2 (52, 31.9317) -> (28, 31.9317) centre (40, 10) ccw
  line L2 (28, 24.5) -> (28, 31.9317)
  point P0 (0, 0)
sketch "Sketch6" plane through (0, 0, 26) normal (0, 0, 1) x (1, 0, 0)
  arc A0 (28, 24.5) -> (52, 24.5) centre (40, 24.5) ccw
  line L0 (52, 31.9317) -> (52, 24.5)
  arc A1 (52, 31.9317) -> (28, 31.9317) centre (40, 10) ccw
  line L1 (28, 24.5) -> (28, 31.9317)
  arc A2 (35.75, 24.5) -> (44.25, 24.5) centre (40, 24.5) ccw
  line L2 (35.75, 26.9) -> (35.75, 34.6361)
  arc A3 (52, 31.9317) -> (28, 31.9317) centre (40, 10) ccw
  line L3 (44.25, 26.9) -> (44.25, 34.6361)
  arc A4 (35.75, 24.5) -> (35.75, 26.9) centre (34.15, 25.7) ccw
  arc A5 (44.25, 26.9) -> (44.25, 24.5) centre (45.85, 25.7) ccw
  point P0 (0, 0)
  dimension "d23" = 8.5
  dimension "d24" = 2
  dimension "d25" = 1.6
sketch "Sketch7" plane through (0, 0, 61) normal (0, 0, 1) x (1, 0, 0)
  arc A0 (35.75, 24.5) -> (44.25, 24.5) centre (40, 24.5) ccw
  arc A1 (44.25, 26.9) -> (44.25, 24.5) centre (45.85, 25.7) ccw
  line L0 (44.25, 34.6361) -> (44.25, 26.9)
  arc A2 (44.25, 34.6361) -> (35.75, 34.6361) centre (40, 10) ccw
  line L1 (35.75, 26.9) -> (35.75, 34.6361)
  arc A3 (35.75, 24.5) -> (35.75, 26.9) centre (34.15, 25.7) ccw
  point P0 (0, 0)
properties part number "SpoolHolderSingleHatchbox" material "ABS Plastic"
